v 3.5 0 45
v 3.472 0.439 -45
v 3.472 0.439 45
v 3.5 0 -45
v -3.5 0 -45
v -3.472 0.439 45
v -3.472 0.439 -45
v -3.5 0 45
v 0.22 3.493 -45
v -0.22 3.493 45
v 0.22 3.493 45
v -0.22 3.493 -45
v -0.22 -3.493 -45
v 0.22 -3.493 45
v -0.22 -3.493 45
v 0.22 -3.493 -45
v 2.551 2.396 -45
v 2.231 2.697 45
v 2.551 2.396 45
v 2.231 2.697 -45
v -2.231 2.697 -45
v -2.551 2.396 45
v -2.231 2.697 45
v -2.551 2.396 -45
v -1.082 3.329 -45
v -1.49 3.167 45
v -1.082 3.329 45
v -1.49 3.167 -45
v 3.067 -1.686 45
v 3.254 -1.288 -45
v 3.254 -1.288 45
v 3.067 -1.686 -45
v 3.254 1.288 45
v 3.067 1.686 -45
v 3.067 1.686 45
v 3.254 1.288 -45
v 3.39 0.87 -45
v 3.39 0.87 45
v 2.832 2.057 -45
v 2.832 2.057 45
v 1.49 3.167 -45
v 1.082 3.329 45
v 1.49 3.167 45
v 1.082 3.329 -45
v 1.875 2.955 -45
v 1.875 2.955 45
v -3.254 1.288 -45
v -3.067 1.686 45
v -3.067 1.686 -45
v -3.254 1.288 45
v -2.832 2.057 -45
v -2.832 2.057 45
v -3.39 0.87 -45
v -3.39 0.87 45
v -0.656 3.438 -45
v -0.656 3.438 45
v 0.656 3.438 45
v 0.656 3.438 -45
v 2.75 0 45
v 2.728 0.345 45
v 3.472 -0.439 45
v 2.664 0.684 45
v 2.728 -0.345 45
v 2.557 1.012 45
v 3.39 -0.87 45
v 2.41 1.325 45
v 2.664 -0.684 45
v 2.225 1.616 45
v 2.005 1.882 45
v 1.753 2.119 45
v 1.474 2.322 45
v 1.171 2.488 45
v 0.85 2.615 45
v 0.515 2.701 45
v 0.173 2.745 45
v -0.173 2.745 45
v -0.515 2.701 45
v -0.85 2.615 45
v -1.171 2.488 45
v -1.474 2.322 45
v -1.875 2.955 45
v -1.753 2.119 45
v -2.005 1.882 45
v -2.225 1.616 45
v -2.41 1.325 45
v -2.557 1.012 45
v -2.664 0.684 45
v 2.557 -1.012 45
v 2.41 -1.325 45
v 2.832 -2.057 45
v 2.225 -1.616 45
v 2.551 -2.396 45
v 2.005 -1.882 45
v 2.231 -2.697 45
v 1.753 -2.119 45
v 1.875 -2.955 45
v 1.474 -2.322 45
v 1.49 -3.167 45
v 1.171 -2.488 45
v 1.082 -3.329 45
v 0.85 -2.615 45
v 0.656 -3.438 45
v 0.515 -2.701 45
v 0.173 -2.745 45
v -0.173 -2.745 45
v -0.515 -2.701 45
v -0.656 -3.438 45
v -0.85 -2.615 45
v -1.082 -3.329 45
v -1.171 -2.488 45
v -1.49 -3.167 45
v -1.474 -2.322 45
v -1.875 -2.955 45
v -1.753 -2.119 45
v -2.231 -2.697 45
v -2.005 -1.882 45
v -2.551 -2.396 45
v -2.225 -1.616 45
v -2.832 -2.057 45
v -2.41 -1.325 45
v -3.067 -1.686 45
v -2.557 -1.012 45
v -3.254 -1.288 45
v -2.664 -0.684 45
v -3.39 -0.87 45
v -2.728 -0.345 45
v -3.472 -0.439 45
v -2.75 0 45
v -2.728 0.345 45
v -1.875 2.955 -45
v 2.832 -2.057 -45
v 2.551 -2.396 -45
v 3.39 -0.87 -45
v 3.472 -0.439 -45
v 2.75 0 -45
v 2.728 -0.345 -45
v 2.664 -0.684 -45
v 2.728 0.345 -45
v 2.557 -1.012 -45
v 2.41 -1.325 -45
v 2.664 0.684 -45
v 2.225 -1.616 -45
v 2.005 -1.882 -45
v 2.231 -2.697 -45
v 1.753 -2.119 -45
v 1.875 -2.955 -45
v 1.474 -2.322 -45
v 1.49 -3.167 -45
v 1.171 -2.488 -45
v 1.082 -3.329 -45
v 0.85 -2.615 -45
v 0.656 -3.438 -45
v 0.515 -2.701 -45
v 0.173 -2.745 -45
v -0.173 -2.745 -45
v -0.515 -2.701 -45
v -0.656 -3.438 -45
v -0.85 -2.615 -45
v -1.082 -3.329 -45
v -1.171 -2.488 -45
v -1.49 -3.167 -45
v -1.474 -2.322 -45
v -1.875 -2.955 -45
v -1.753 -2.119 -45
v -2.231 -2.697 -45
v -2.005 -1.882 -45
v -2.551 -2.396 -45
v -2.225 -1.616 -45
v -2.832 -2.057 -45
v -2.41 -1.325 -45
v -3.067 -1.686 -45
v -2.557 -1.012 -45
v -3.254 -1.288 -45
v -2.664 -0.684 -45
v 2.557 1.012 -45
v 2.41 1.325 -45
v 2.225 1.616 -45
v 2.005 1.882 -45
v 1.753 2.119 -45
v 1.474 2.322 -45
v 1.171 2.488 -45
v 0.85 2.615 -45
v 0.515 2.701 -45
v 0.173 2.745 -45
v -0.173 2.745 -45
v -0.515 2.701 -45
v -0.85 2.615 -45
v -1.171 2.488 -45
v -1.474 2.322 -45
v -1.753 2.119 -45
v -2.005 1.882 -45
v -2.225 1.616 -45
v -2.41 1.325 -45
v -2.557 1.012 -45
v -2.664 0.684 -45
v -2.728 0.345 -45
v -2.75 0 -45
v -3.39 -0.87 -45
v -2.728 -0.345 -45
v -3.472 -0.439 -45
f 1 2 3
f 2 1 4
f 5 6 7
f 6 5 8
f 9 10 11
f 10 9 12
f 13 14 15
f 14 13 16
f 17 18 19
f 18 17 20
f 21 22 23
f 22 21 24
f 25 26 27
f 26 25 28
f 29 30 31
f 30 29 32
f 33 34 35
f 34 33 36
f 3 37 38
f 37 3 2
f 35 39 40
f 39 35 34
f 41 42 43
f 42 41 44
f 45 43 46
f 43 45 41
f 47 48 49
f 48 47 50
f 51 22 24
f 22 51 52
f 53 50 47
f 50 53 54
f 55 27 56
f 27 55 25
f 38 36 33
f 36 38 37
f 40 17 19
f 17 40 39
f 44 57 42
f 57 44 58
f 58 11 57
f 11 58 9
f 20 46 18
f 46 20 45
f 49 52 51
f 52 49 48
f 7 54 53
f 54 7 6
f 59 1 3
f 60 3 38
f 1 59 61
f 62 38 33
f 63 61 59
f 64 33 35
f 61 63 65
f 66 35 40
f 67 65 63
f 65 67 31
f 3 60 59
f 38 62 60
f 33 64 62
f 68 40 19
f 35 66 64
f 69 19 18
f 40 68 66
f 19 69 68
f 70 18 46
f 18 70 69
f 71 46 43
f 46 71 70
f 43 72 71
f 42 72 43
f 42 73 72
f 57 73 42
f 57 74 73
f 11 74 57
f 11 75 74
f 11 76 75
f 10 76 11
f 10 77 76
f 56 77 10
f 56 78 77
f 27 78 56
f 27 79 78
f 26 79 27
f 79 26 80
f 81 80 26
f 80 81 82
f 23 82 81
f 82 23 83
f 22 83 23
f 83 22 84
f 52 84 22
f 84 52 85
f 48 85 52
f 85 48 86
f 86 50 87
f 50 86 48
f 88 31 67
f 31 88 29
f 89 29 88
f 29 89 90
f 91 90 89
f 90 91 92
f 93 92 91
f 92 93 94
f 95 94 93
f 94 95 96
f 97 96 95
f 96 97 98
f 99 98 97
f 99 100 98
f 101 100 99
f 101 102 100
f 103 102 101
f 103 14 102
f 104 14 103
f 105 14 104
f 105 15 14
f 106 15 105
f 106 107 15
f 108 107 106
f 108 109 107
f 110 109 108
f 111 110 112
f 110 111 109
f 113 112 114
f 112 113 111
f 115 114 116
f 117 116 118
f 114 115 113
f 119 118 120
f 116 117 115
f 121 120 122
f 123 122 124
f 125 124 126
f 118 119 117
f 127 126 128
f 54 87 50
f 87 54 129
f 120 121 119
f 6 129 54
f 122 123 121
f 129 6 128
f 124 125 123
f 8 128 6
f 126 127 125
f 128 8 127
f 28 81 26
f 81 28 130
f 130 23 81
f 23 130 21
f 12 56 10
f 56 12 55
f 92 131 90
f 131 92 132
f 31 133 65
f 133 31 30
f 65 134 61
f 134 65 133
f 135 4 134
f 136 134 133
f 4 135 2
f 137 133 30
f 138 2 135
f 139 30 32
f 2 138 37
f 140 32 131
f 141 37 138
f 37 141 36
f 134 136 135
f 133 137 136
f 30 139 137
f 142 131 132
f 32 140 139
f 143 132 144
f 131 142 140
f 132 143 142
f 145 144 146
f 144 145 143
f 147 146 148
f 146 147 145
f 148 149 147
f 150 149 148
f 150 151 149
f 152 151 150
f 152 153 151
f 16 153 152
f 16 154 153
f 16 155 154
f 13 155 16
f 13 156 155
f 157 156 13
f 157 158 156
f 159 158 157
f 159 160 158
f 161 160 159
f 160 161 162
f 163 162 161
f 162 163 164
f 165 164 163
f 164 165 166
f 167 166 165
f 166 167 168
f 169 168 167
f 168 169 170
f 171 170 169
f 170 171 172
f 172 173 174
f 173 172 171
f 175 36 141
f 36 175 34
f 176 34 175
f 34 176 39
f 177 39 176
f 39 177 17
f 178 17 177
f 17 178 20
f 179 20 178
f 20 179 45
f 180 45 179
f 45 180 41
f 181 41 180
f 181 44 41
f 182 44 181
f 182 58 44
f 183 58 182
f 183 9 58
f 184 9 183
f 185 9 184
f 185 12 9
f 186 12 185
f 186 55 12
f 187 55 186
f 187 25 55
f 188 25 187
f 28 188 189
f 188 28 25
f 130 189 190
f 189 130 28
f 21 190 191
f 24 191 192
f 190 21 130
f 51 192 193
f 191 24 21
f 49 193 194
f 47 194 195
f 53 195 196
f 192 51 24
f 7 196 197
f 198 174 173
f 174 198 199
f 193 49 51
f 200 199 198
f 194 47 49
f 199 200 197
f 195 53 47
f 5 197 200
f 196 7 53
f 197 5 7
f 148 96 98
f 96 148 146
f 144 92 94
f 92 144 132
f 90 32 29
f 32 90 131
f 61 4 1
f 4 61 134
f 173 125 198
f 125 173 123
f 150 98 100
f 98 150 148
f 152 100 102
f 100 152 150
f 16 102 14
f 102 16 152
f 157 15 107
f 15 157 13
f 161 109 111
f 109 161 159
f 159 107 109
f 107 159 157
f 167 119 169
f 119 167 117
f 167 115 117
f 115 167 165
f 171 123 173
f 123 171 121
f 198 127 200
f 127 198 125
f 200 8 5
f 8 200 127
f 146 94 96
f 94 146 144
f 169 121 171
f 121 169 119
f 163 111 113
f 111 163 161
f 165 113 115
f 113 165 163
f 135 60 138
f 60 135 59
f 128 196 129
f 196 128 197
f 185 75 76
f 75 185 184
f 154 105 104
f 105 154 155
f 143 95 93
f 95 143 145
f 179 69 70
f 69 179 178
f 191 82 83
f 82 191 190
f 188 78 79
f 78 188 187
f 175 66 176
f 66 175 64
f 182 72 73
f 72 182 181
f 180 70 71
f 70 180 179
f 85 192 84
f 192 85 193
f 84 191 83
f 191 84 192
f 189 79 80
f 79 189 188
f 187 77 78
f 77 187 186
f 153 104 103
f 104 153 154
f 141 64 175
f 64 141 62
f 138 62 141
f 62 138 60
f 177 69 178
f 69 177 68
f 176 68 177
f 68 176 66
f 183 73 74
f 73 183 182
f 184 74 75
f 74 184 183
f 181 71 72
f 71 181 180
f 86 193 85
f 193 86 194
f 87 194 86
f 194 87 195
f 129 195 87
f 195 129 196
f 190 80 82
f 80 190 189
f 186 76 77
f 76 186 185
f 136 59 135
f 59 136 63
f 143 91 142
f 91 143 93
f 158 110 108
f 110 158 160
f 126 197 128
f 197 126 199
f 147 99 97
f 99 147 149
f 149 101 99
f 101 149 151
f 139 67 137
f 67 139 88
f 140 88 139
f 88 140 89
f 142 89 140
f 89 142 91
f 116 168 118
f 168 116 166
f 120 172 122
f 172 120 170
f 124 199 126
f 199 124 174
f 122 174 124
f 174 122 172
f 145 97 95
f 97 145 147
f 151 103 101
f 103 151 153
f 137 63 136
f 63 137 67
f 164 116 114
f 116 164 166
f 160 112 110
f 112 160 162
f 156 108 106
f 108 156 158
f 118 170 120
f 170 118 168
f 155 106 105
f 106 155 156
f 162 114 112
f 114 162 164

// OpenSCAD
$fn = 50;


difference() {
	union() {
		translate(v = [0, 0, -45.0000000000]) {
			cylinder(h = 90, r = 3.5000000000);
		}
	}
	union() {
		translate(v = [0, 0, -100.0000000000]) {
			cylinder(h = 200, r = 2.7500000000);
		}
	}
}
